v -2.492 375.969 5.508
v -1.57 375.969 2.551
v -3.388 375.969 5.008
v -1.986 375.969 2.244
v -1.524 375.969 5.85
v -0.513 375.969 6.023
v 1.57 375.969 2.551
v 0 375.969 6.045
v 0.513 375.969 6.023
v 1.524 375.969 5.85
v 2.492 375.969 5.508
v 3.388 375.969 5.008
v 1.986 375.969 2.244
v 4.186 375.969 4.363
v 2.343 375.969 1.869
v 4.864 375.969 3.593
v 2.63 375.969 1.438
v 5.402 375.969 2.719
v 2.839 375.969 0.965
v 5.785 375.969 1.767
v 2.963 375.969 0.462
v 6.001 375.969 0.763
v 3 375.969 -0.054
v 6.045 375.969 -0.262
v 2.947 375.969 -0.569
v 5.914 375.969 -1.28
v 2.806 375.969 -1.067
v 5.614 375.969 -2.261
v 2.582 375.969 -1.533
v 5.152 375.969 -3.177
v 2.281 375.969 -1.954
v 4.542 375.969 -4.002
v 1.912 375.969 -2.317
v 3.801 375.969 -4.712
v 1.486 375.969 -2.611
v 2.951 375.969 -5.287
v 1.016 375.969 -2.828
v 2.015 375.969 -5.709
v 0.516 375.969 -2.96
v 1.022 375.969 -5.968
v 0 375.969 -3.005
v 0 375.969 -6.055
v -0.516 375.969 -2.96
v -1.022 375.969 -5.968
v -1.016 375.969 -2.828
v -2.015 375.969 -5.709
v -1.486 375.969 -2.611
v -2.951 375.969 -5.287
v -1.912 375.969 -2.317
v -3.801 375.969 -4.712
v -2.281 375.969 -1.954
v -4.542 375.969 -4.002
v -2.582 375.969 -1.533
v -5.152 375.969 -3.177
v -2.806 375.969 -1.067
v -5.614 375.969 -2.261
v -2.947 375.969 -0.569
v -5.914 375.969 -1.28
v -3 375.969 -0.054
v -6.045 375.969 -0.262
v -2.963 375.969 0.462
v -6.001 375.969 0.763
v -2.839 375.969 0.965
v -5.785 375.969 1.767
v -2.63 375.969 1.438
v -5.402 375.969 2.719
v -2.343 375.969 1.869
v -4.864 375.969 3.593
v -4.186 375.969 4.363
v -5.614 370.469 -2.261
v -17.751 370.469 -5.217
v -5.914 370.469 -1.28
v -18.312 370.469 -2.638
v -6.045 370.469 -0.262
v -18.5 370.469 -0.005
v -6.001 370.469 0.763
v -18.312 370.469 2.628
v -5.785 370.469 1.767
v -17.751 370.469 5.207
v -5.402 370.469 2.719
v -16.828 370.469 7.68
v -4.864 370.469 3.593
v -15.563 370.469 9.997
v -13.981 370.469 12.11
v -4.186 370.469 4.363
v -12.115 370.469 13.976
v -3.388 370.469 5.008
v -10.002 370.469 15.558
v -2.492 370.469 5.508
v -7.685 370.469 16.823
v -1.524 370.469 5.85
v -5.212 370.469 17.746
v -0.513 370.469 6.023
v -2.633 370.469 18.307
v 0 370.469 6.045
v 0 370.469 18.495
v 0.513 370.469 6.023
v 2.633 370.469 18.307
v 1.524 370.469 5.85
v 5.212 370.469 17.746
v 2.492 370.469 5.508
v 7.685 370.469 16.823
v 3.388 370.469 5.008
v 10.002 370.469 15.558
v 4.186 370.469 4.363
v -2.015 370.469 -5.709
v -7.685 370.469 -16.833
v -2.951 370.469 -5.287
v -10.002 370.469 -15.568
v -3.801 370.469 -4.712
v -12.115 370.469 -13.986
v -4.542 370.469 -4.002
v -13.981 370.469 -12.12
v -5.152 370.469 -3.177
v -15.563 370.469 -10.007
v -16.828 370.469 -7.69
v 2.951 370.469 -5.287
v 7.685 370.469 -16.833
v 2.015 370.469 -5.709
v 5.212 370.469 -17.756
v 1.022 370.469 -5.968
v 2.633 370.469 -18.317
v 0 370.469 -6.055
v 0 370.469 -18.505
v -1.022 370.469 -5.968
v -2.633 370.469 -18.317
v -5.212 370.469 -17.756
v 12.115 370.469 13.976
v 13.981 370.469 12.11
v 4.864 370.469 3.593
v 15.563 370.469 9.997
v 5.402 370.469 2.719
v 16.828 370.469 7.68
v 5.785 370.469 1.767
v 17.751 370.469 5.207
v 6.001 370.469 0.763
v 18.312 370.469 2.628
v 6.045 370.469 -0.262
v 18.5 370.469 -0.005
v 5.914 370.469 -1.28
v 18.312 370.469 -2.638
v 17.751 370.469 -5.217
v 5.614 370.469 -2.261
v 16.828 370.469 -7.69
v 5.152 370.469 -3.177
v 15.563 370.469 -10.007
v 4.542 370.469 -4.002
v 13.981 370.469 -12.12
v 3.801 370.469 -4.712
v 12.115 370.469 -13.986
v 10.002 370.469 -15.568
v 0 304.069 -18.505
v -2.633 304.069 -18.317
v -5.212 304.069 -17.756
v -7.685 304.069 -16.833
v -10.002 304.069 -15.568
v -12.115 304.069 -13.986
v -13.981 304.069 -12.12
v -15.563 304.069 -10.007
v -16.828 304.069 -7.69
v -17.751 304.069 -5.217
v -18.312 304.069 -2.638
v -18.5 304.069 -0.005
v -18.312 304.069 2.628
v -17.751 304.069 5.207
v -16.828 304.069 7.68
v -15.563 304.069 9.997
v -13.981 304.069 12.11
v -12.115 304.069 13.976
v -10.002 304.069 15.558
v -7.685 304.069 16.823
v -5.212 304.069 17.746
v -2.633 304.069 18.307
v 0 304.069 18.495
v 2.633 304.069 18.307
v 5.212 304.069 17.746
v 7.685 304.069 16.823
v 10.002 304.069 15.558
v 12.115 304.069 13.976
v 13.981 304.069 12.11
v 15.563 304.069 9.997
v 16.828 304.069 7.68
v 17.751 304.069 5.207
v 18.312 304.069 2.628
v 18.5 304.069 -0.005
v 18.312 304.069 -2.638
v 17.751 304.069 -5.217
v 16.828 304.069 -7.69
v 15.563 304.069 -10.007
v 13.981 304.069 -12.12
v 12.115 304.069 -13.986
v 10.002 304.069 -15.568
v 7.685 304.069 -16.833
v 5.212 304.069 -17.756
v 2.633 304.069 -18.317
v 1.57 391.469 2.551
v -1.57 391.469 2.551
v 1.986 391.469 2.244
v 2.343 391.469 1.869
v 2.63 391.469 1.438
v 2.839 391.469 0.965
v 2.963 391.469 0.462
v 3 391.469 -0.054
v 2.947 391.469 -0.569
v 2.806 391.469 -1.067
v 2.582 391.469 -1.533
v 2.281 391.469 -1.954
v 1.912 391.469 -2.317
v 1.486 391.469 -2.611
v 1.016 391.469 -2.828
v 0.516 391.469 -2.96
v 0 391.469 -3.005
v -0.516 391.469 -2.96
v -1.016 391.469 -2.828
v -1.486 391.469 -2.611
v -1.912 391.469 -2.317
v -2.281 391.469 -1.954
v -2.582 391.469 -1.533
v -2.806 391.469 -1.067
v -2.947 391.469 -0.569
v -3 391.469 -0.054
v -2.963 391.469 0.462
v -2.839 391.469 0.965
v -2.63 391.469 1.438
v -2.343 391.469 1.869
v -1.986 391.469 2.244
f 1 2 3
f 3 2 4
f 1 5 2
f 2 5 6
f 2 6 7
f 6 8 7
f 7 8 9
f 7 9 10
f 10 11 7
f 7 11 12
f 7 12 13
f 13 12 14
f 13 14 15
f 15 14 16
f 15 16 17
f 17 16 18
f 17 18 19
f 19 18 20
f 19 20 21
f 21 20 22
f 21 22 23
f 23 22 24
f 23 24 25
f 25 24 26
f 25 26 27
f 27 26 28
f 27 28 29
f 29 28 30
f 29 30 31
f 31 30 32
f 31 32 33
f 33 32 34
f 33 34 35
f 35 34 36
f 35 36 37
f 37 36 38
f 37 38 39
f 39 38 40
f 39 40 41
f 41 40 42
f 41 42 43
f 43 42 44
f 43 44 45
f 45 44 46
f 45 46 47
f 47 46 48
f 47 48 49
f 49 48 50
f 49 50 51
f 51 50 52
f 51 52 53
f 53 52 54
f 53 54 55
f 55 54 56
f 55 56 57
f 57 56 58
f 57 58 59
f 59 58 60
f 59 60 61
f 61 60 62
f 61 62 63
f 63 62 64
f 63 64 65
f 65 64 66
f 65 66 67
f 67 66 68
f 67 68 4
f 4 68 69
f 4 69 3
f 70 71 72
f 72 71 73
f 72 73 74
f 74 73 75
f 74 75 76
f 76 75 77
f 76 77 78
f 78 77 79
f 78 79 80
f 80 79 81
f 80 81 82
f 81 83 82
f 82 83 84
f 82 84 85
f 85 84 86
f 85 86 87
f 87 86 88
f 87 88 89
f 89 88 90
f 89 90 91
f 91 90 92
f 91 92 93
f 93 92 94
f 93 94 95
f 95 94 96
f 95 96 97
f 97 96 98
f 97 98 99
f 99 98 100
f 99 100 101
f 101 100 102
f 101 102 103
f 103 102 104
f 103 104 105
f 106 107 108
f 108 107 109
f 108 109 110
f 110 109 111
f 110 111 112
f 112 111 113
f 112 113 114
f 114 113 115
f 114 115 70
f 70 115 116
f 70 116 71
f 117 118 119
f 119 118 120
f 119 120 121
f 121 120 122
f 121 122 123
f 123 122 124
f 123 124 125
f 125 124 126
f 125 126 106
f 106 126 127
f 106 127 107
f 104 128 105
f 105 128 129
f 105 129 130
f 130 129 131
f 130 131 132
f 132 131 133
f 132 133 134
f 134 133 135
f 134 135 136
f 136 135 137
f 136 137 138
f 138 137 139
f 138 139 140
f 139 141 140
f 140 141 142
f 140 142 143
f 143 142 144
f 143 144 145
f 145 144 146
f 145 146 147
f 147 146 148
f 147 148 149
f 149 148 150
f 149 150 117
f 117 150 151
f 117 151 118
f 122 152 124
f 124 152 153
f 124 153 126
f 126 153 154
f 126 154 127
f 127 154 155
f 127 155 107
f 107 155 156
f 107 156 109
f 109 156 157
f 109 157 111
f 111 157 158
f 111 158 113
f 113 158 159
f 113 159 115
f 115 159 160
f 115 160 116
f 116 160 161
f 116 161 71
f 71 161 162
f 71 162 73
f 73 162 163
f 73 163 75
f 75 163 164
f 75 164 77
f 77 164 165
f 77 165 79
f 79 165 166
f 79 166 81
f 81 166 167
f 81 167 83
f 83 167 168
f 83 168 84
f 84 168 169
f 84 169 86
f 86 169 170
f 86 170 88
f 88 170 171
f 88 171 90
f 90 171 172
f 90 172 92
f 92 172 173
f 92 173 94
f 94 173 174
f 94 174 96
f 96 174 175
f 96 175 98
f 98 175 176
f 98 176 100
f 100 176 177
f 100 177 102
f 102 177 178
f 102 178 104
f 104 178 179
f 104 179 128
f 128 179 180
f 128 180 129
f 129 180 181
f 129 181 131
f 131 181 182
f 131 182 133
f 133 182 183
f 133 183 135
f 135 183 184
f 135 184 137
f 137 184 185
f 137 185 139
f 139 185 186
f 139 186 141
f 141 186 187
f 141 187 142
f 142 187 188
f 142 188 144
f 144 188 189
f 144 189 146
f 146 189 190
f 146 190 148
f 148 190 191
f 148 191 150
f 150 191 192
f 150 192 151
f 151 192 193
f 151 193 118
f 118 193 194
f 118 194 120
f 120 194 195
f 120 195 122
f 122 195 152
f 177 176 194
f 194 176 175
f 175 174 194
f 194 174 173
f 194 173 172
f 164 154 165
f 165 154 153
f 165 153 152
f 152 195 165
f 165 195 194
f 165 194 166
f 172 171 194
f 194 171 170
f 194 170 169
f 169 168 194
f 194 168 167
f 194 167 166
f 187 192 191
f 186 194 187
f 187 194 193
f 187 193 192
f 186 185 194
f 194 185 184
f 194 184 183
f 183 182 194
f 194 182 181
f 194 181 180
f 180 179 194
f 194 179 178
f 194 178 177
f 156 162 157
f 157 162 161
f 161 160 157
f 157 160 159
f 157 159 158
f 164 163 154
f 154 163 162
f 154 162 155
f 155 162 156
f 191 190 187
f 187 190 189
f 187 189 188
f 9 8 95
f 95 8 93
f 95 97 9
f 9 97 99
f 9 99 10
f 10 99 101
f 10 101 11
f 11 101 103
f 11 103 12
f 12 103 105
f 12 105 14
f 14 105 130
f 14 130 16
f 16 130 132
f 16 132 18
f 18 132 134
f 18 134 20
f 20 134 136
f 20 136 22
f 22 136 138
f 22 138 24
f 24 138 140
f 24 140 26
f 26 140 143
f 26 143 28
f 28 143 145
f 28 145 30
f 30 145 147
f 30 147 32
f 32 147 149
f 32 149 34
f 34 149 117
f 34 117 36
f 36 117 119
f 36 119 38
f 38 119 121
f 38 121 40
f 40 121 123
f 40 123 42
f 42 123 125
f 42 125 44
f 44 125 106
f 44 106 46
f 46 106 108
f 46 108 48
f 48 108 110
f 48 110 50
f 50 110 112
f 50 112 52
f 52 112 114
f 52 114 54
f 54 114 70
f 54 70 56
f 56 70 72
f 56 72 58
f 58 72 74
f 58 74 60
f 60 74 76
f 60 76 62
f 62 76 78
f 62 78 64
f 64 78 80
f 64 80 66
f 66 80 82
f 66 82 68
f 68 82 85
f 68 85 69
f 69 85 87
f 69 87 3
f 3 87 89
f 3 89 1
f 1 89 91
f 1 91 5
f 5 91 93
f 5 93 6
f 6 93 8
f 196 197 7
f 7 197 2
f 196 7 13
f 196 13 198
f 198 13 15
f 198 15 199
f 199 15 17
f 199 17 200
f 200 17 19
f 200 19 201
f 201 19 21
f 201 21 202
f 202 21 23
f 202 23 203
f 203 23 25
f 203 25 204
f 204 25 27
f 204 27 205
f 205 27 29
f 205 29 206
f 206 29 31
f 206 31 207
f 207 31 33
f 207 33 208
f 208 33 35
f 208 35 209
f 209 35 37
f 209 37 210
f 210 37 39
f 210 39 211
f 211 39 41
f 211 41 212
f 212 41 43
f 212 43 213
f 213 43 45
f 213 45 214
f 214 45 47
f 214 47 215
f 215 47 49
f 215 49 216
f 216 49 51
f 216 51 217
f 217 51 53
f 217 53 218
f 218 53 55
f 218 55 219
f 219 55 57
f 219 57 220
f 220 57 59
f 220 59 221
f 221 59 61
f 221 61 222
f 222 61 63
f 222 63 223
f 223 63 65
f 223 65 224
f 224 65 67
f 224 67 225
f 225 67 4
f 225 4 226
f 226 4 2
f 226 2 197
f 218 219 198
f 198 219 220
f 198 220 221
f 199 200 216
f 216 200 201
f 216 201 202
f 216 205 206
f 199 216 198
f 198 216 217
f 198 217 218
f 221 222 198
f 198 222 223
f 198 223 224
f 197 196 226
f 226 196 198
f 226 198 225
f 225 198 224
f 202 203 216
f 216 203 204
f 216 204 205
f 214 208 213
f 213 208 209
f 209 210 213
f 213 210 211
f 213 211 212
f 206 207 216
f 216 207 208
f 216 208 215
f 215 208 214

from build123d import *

# Parameters (mm, degrees)
SKETCH1_R           = 185
BOSS_EXTRUDE1_DEPTH = 664
SKETCH2_R           = 60.5
BOSS_EXTRUDE2_DEPTH = 55
BOSS_EXTRUDE3_DEPTH = 155
SCALE1_SCALE        = 0.1


with BuildPart() as part:
    # Sketch1 → Boss-Extrude1 (new body)
    with BuildSketch(Plane(origin=(0, 0, 0), x_dir=(1, 0, 0), z_dir=(0, 1, 0))):
        with Locations(Location((0, 0, 0), (0, 0, 270))):
            Circle(SKETCH1_R)
    extrude(amount=BOSS_EXTRUDE1_DEPTH)

    # Sketch2 → Boss-Extrude2 (add)
    with BuildSketch(Plane(origin=(0, 664, 0), x_dir=(1, 0, 0), z_dir=(0, 1, 0))):
        with Locations(Location((0, 0, 0), (0, 0, 270))):
            Circle(SKETCH2_R)
    extrude(amount=BOSS_EXTRUDE2_DEPTH)

    # Sketch3 → Boss-Extrude3 (add)
    with BuildSketch(Plane(origin=(0, 719, 0), x_dir=(1, 0, 0), z_dir=(0, 1, 0))):
        with BuildLine():
            Line((0, -25.564167514), (15.699469395, -25.564167514))
            ThreePointArc((15.699469395, -25.564167514), (0, 30), (-15.699469395, -25.564167514))
            Line((-15.699469395, -25.564167514), (0, -25.564167514))
        make_face()
    extrude(amount=BOSS_EXTRUDE3_DEPTH)


with BuildPart() as part_1:
    # Scale1: scaled about (0, 337.854264359, -0.005518954)
    add(part.part.scale(SCALE1_SCALE).moved(Location((0, 304.068837923, -0.004967059))))


solid = part_1.part
